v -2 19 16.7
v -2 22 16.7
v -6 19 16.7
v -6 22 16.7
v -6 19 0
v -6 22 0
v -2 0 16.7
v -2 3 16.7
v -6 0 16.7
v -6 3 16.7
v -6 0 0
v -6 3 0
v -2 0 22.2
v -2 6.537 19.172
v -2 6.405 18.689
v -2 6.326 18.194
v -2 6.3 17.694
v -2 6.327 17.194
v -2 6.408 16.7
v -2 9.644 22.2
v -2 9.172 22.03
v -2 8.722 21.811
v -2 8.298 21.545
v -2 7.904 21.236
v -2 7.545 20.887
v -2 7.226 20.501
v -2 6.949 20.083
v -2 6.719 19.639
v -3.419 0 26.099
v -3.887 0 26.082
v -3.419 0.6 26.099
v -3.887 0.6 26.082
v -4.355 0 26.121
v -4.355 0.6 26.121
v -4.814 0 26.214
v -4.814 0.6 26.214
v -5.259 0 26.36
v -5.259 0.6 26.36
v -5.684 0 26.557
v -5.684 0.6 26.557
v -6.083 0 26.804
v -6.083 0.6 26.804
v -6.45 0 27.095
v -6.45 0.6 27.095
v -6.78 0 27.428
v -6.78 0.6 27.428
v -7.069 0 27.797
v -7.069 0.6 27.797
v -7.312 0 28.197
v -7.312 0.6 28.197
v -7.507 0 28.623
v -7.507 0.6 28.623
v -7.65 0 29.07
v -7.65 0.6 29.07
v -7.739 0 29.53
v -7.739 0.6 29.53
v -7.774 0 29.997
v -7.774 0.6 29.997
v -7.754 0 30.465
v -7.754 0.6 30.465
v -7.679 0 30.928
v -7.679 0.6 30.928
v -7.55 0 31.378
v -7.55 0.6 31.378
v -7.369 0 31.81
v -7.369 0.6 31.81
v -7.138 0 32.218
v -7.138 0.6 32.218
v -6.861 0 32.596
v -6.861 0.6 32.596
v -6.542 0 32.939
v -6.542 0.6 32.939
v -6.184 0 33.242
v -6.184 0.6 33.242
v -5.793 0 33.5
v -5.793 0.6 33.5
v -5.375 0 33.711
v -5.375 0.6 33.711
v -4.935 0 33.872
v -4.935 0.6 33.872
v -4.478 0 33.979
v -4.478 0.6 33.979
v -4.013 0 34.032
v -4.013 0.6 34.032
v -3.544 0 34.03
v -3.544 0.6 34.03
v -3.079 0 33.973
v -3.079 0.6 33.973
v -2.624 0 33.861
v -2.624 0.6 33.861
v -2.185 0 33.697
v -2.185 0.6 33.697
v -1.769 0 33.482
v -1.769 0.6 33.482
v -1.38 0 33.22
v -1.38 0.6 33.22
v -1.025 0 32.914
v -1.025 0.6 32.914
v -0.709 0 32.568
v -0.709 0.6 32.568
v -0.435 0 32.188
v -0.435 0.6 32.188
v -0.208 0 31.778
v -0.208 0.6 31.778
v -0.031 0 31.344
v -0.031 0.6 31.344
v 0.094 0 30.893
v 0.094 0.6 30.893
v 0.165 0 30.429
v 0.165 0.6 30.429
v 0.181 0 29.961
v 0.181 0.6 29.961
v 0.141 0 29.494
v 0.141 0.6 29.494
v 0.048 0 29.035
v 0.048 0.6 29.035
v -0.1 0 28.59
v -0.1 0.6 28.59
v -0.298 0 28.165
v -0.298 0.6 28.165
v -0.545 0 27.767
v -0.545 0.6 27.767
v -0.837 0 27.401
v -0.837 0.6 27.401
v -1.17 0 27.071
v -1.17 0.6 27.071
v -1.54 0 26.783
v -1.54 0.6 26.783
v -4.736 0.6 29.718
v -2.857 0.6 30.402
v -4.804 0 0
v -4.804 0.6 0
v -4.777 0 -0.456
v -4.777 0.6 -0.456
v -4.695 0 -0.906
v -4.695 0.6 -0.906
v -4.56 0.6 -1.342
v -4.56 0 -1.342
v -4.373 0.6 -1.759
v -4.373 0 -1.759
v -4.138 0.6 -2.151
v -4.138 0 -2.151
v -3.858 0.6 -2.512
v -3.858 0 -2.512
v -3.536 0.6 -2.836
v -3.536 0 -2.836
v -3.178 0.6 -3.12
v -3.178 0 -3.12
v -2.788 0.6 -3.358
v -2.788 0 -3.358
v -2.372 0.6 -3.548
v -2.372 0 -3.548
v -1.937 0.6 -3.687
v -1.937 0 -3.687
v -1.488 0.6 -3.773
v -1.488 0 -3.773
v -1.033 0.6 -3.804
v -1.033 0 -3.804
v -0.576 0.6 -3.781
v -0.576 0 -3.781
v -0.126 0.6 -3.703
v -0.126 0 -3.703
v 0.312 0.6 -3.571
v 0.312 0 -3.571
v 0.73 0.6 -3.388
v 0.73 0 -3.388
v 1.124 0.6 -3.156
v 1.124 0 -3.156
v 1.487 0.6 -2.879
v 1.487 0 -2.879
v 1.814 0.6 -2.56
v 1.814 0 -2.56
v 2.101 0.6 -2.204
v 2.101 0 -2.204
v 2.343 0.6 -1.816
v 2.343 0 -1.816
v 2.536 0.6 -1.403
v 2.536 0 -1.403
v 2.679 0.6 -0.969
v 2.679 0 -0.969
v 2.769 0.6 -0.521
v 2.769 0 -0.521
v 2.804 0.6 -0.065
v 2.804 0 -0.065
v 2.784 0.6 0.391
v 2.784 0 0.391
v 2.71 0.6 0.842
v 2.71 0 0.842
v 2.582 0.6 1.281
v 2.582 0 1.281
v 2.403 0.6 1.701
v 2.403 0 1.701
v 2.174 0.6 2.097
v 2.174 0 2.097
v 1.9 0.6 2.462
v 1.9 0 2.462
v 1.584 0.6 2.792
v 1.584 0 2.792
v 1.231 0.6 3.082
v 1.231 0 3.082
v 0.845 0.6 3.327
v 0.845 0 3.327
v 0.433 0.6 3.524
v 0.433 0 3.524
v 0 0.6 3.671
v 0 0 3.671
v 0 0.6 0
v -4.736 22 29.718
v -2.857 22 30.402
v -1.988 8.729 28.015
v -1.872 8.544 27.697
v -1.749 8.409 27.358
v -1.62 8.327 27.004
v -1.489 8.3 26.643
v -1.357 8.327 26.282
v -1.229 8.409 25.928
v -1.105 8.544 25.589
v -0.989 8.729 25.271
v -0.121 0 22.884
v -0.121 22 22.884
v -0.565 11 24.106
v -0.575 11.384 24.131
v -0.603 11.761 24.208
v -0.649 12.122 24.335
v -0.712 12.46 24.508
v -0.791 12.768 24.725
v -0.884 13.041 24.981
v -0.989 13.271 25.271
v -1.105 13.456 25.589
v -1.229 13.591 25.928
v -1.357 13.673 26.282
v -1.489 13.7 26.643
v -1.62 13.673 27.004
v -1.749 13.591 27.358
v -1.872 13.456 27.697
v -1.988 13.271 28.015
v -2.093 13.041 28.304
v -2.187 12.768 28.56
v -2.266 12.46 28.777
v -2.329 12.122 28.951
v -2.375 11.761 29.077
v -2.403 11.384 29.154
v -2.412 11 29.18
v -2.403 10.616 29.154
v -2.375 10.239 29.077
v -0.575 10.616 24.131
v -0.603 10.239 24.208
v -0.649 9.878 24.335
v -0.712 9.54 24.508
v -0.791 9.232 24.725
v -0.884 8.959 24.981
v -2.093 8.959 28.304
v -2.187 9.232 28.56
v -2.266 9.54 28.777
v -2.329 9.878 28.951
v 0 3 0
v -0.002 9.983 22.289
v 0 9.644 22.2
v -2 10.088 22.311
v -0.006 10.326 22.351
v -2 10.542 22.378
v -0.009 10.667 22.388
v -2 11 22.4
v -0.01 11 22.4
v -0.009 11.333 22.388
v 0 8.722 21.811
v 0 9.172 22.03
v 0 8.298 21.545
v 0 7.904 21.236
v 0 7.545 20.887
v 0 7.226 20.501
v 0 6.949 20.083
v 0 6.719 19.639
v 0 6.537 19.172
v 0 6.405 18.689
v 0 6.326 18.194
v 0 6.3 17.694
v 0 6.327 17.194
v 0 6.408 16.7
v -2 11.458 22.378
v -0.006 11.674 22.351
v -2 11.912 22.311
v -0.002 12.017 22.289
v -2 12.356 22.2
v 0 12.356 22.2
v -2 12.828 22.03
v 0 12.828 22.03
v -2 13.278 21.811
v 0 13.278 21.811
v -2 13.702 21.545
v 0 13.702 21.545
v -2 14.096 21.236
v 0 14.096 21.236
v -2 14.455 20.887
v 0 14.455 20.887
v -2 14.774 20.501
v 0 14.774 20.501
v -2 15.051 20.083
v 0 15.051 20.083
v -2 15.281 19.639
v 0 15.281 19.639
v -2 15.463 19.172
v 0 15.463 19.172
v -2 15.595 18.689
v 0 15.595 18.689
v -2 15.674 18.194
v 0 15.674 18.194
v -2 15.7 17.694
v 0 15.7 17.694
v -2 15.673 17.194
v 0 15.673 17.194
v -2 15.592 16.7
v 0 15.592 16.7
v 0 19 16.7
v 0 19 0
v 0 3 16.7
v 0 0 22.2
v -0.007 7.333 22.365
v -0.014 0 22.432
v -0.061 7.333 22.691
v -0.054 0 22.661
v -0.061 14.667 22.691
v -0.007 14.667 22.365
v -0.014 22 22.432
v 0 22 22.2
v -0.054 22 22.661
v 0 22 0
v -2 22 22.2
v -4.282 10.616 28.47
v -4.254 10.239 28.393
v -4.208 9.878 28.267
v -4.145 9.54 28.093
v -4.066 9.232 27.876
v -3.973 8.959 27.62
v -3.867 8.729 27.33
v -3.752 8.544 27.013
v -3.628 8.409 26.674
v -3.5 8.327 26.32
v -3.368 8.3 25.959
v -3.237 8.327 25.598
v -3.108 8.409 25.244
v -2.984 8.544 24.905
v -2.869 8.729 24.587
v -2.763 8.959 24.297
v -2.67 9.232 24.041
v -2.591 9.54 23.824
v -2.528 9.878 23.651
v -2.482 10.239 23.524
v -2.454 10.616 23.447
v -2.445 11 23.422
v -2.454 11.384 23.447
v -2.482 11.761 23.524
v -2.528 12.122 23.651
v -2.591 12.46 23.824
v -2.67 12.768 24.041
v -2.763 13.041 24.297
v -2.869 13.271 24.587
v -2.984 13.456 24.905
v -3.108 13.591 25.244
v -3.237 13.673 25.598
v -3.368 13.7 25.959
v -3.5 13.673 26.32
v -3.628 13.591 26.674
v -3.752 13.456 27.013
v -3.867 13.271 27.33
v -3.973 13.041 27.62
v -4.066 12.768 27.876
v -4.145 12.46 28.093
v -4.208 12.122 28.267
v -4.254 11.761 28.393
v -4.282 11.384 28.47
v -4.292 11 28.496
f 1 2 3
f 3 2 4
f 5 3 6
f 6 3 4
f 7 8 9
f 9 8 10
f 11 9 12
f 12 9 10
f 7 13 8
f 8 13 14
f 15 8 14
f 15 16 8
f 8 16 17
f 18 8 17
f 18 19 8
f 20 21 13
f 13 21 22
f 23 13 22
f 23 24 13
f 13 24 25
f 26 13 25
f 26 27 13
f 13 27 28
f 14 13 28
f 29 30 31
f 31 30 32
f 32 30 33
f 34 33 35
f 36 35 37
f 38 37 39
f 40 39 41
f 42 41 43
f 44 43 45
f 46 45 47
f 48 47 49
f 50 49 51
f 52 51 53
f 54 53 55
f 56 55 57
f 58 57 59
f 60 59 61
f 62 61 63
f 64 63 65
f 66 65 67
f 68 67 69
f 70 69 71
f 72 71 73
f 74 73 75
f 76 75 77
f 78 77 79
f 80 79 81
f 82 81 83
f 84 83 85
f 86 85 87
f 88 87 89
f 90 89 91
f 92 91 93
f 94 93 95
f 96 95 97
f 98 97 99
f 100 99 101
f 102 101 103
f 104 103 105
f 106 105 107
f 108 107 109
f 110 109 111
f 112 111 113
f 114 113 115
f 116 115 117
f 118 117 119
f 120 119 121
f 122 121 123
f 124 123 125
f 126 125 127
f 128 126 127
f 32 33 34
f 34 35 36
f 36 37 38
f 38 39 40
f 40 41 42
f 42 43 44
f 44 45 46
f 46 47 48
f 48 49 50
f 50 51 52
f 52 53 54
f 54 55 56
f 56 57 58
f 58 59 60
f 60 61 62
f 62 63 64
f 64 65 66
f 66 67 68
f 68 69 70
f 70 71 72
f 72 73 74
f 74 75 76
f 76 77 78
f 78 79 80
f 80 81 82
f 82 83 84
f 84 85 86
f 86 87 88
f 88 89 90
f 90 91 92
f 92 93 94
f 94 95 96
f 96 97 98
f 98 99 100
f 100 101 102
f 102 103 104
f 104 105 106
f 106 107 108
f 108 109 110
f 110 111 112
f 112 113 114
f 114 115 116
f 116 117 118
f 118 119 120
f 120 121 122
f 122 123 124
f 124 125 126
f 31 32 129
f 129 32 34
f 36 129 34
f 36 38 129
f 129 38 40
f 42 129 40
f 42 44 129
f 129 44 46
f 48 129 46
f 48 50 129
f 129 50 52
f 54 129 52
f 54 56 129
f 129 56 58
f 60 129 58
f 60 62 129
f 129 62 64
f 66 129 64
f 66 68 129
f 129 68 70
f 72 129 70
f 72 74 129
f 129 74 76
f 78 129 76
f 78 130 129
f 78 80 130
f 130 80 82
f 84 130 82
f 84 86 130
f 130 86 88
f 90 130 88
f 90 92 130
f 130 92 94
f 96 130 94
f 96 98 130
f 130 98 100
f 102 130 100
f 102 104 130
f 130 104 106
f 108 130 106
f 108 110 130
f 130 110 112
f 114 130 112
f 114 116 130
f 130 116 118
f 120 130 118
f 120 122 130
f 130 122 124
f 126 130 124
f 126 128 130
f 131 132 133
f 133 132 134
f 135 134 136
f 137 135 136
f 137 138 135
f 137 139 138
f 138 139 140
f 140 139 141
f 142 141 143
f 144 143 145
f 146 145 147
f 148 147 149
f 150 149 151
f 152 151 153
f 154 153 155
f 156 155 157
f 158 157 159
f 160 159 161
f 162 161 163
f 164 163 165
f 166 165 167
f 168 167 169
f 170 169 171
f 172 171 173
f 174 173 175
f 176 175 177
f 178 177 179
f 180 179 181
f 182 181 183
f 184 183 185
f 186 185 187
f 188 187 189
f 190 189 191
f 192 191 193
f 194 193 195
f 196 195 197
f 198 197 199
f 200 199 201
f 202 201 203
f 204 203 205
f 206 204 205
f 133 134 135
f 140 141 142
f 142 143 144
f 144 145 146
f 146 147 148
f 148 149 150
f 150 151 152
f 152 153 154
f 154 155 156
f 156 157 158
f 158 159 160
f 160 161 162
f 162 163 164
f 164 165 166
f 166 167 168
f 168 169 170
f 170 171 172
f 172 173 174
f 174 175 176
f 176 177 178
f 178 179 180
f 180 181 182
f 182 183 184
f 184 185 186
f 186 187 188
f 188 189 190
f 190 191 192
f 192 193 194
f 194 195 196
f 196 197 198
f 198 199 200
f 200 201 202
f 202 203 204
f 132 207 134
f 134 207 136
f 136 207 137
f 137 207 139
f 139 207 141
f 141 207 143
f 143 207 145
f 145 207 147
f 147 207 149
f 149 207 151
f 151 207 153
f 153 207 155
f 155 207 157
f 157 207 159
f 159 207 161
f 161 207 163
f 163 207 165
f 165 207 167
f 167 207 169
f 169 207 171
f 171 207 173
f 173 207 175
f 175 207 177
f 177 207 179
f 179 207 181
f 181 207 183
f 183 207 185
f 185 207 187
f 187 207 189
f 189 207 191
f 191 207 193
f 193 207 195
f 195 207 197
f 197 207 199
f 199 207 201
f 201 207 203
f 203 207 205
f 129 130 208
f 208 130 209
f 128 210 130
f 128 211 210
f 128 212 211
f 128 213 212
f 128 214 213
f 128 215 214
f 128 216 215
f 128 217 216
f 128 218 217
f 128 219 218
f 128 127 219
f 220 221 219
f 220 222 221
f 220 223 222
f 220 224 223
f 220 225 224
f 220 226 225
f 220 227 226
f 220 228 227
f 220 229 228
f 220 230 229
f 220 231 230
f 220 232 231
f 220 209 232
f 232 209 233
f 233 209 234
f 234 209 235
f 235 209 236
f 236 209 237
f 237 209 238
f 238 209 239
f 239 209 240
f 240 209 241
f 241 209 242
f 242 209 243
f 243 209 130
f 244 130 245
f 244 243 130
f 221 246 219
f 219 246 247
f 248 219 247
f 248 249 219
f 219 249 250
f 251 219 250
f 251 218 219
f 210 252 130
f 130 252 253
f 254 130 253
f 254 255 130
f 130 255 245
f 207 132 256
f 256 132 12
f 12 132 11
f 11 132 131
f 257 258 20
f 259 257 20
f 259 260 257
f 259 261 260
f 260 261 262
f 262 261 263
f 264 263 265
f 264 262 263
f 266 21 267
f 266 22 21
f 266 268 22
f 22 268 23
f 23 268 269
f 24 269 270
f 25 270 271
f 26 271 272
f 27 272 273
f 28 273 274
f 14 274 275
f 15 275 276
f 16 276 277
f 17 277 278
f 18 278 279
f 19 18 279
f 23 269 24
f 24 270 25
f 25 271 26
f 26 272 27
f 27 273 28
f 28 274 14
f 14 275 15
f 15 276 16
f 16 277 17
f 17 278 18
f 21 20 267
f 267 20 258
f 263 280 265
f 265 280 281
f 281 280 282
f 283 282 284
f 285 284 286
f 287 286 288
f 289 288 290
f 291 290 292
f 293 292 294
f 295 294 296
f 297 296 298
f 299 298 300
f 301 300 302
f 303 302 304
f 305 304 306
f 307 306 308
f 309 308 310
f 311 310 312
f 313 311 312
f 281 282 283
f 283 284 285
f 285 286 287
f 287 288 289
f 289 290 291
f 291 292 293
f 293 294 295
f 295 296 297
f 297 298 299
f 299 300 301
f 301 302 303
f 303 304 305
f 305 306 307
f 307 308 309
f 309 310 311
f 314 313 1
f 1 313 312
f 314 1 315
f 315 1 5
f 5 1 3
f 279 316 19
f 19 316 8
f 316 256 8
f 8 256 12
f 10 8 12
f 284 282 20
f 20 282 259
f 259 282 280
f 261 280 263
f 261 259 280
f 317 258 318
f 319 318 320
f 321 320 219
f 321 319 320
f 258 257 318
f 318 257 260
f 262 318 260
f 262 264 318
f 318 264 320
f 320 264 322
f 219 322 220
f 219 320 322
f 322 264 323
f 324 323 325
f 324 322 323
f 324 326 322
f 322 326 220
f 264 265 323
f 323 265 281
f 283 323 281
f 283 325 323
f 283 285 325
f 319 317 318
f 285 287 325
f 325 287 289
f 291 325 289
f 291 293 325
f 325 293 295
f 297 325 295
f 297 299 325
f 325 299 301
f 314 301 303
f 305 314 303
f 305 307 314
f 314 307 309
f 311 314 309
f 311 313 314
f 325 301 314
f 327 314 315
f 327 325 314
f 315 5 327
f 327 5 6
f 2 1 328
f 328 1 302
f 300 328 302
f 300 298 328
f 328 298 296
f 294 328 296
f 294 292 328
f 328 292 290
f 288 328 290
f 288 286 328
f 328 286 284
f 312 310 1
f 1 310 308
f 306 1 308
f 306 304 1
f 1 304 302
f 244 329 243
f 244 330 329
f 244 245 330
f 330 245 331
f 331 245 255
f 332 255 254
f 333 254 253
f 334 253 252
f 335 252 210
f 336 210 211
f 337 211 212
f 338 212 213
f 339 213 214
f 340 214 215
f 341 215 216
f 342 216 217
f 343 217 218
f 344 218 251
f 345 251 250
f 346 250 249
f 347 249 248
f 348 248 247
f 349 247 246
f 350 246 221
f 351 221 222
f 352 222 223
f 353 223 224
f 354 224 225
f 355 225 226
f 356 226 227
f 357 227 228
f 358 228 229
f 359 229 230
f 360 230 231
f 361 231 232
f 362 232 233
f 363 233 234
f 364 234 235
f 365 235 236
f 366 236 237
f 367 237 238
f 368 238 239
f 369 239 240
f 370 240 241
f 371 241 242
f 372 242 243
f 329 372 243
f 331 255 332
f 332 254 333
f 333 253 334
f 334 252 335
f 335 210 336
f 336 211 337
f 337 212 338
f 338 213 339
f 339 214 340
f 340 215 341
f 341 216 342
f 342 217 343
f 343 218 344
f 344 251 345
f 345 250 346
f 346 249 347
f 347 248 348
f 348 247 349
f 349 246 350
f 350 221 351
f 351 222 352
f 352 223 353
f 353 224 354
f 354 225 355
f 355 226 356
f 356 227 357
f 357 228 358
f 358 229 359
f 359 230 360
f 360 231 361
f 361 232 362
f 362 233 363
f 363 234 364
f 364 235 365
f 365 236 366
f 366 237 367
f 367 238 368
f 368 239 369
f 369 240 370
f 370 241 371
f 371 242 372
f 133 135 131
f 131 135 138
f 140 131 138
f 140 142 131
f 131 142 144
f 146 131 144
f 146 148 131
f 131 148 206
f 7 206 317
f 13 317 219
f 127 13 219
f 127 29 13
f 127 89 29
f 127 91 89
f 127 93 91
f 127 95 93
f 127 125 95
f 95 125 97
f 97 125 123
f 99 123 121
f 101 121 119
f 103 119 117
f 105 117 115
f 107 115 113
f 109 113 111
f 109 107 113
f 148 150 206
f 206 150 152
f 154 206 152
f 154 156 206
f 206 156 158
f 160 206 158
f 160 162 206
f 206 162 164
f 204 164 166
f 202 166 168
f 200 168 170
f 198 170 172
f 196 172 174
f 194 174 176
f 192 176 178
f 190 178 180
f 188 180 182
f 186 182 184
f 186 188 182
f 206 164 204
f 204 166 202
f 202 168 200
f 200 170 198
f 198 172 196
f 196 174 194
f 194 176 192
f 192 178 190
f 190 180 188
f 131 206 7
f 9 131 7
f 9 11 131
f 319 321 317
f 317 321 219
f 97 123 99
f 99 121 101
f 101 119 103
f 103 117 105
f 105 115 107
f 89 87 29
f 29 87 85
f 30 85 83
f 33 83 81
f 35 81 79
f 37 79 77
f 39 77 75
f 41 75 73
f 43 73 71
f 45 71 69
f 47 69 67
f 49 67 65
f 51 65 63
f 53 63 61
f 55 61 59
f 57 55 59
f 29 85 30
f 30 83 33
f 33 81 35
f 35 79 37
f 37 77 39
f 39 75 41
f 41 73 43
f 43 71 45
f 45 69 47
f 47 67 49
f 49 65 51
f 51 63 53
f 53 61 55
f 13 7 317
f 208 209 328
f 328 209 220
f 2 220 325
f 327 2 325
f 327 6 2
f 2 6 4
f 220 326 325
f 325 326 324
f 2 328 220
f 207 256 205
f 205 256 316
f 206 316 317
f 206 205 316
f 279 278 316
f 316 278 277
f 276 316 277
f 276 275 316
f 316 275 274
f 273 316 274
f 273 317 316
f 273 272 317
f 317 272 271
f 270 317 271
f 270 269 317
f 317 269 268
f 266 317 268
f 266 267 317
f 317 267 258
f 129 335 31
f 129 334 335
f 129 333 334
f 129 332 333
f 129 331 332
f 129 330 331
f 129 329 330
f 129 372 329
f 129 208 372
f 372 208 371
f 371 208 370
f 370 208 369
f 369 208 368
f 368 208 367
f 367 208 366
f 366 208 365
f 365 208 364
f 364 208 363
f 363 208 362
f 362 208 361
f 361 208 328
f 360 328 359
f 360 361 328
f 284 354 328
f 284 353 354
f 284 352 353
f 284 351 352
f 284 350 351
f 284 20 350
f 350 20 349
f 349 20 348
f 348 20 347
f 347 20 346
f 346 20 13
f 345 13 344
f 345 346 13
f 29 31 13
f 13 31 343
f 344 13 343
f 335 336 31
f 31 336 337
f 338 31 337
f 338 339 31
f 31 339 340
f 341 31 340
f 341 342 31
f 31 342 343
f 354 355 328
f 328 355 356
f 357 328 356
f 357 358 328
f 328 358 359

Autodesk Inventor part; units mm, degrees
ref_plane "YZ Plane" through (0, 0, 0) normal (1, 0, 0) x (0, 1, 0)
ref_plane "XZ Plane" through (0, 0, 0) normal (0, 1, 0) x (-1, 0, 0)
ref_plane "XY Plane" through (0, 0, 0) normal (0, 0, 1) x (1, 0, 0)
sketch "Sketch1" plane through (0, 0, 0) normal (0, 1, 0) x (-1, 0, 0)
  line L0 (0, 0) -> (2, 0)
  line L1 (2, 0) -> (2, 22.2)
  line L2 (2, 22.2) -> (0, 22.2)
  line L3 (0, 22.2) -> (0, 0)
  line L4 (0.1206, 22.884) -> (2, 22.2)
  line L5 (2, 22.2) -> (4.7362, 29.7175)
  line L6 (4.7362, 29.7175) -> (2.8568, 30.4016)
  line L7 (2.8568, 30.4016) -> (0.1206, 22.884)
  line L8 (2, 22.2) -> (-13.9637, 28.0103) construction
  line L9 (3.7965, 30.0596) -> (1.0603, 22.542) construction
  arc A0 (2.684, 24.0794) -> (2, 20.2) centre (2, 22.2) ccw
  arc A1 (2, 20.2) -> (2.684, 24.0794) centre (2, 22.2) ccw
  circle A2 centre (3.7965, 30.0596) radius 3.9783
  circle A3 centre (1, 0) radius 3.8044
  dimension "d0" = 2
  dimension "d1" = 22.2
  dimension "d26" = 2
  dimension "d27" = 20
  dimension "d28" = 8
extrude "Extrusion6" add sketch "Sketch1" along normal blind 22 contours L3 A3 L1 L0 | L3 A0 L1 A3 | A0 L4 L2 | L2 L1 A0 | L1 L5 A1 | L4 A0 L5 | L7 A2 L5 A0 | L7 L6 L5 A2 picked at (1.1123, 1.2632) picked at (3.2392, 28.8563)
extrude "Extrusion7" cut sketch "Sketch1" along normal blind 22 contours L1 L5 A1
sketch "Sketch4" plane through (-4.7362, 0, 29.7175) normal (-0.9397, 0, -0.342) x (-0.342, 0, 0.9397)
  line L0 (-8, 22) -> (0, 22) projected
  line L1 (-8, 0) -> (-8, 22) projected
  circle A0 centre (-4, 11) radius 2.7
  point P0 (-29.5452, 0)
  point P1 (-8, 11)
  point P2 (-4, 22)
  dimension "d33" = 5.4
extrude "Extrusion8" cut sketch "Sketch4" against normal blind 3
sketch "Sketch5" plane through (-2, 0, 0) normal (-1, 0, 0) x (0, 0, 1)
  line L0 (0, 22) -> (22.2, 22) projected
  line L1 (0, 0) -> (0, 22) projected
  line L2 (0, 0) -> (22.2, 0) projected
  line L3 (22.2, 0) -> (22.2, 22) projected
  circle A0 centre (17.7, 11) radius 4.7
  line L4 (16.7, 22) -> (16.7, 0) construction
  line L5 (0, 19) -> (16.7, 19)
  line L6 (16.7, 19) -> (16.7, 3)
  line L7 (16.7, 3) -> (0, 3)
  line L8 (0, 3) -> (0, 19)
  line L9 (0, 22) -> (16.7, 22)
  line L10 (16.7, 22) -> (16.7, 19)
  line L11 (16.7, 19) -> (0, 19)
  line L12 (0, 19) -> (0, 22)
  line L13 (0, 3) -> (16.7, 3)
  line L14 (16.7, 3) -> (16.7, 0)
  line L15 (16.7, 0) -> (0, 0)
  line L16 (0, 0) -> (0, 3)
  point P0 (22.2, 11)
  point P1 (16.7, 11)
  point P2 (0, 11)
  dimension "d36" = 9.4
  dimension "d37" = 4.5
  dimension "d38" = 16.7
  dimension "d39" = 16
extrude "Extrusion9" cut sketch "Sketch5" against normal blind 3 contours L5 L6 A0 L7 L1 | A0 L3 | L3 A0 L6 | L6 A0
extrude "Extrusion11" add sketch "Sketch1" along normal blind 0.6 contours L3 A3 L1 L0 | L0 L1 A3 L3 | A2 L5 L6 L7 | L7 L6 L5 A2
extrude "Extrusion12" add sketch "Sketch5" along normal blind 4 contours L0 L10 L5 L1 | L7 L14 L2 L1
equation "\"sp\" = 0.4"
properties part number "EncoderBracket"
